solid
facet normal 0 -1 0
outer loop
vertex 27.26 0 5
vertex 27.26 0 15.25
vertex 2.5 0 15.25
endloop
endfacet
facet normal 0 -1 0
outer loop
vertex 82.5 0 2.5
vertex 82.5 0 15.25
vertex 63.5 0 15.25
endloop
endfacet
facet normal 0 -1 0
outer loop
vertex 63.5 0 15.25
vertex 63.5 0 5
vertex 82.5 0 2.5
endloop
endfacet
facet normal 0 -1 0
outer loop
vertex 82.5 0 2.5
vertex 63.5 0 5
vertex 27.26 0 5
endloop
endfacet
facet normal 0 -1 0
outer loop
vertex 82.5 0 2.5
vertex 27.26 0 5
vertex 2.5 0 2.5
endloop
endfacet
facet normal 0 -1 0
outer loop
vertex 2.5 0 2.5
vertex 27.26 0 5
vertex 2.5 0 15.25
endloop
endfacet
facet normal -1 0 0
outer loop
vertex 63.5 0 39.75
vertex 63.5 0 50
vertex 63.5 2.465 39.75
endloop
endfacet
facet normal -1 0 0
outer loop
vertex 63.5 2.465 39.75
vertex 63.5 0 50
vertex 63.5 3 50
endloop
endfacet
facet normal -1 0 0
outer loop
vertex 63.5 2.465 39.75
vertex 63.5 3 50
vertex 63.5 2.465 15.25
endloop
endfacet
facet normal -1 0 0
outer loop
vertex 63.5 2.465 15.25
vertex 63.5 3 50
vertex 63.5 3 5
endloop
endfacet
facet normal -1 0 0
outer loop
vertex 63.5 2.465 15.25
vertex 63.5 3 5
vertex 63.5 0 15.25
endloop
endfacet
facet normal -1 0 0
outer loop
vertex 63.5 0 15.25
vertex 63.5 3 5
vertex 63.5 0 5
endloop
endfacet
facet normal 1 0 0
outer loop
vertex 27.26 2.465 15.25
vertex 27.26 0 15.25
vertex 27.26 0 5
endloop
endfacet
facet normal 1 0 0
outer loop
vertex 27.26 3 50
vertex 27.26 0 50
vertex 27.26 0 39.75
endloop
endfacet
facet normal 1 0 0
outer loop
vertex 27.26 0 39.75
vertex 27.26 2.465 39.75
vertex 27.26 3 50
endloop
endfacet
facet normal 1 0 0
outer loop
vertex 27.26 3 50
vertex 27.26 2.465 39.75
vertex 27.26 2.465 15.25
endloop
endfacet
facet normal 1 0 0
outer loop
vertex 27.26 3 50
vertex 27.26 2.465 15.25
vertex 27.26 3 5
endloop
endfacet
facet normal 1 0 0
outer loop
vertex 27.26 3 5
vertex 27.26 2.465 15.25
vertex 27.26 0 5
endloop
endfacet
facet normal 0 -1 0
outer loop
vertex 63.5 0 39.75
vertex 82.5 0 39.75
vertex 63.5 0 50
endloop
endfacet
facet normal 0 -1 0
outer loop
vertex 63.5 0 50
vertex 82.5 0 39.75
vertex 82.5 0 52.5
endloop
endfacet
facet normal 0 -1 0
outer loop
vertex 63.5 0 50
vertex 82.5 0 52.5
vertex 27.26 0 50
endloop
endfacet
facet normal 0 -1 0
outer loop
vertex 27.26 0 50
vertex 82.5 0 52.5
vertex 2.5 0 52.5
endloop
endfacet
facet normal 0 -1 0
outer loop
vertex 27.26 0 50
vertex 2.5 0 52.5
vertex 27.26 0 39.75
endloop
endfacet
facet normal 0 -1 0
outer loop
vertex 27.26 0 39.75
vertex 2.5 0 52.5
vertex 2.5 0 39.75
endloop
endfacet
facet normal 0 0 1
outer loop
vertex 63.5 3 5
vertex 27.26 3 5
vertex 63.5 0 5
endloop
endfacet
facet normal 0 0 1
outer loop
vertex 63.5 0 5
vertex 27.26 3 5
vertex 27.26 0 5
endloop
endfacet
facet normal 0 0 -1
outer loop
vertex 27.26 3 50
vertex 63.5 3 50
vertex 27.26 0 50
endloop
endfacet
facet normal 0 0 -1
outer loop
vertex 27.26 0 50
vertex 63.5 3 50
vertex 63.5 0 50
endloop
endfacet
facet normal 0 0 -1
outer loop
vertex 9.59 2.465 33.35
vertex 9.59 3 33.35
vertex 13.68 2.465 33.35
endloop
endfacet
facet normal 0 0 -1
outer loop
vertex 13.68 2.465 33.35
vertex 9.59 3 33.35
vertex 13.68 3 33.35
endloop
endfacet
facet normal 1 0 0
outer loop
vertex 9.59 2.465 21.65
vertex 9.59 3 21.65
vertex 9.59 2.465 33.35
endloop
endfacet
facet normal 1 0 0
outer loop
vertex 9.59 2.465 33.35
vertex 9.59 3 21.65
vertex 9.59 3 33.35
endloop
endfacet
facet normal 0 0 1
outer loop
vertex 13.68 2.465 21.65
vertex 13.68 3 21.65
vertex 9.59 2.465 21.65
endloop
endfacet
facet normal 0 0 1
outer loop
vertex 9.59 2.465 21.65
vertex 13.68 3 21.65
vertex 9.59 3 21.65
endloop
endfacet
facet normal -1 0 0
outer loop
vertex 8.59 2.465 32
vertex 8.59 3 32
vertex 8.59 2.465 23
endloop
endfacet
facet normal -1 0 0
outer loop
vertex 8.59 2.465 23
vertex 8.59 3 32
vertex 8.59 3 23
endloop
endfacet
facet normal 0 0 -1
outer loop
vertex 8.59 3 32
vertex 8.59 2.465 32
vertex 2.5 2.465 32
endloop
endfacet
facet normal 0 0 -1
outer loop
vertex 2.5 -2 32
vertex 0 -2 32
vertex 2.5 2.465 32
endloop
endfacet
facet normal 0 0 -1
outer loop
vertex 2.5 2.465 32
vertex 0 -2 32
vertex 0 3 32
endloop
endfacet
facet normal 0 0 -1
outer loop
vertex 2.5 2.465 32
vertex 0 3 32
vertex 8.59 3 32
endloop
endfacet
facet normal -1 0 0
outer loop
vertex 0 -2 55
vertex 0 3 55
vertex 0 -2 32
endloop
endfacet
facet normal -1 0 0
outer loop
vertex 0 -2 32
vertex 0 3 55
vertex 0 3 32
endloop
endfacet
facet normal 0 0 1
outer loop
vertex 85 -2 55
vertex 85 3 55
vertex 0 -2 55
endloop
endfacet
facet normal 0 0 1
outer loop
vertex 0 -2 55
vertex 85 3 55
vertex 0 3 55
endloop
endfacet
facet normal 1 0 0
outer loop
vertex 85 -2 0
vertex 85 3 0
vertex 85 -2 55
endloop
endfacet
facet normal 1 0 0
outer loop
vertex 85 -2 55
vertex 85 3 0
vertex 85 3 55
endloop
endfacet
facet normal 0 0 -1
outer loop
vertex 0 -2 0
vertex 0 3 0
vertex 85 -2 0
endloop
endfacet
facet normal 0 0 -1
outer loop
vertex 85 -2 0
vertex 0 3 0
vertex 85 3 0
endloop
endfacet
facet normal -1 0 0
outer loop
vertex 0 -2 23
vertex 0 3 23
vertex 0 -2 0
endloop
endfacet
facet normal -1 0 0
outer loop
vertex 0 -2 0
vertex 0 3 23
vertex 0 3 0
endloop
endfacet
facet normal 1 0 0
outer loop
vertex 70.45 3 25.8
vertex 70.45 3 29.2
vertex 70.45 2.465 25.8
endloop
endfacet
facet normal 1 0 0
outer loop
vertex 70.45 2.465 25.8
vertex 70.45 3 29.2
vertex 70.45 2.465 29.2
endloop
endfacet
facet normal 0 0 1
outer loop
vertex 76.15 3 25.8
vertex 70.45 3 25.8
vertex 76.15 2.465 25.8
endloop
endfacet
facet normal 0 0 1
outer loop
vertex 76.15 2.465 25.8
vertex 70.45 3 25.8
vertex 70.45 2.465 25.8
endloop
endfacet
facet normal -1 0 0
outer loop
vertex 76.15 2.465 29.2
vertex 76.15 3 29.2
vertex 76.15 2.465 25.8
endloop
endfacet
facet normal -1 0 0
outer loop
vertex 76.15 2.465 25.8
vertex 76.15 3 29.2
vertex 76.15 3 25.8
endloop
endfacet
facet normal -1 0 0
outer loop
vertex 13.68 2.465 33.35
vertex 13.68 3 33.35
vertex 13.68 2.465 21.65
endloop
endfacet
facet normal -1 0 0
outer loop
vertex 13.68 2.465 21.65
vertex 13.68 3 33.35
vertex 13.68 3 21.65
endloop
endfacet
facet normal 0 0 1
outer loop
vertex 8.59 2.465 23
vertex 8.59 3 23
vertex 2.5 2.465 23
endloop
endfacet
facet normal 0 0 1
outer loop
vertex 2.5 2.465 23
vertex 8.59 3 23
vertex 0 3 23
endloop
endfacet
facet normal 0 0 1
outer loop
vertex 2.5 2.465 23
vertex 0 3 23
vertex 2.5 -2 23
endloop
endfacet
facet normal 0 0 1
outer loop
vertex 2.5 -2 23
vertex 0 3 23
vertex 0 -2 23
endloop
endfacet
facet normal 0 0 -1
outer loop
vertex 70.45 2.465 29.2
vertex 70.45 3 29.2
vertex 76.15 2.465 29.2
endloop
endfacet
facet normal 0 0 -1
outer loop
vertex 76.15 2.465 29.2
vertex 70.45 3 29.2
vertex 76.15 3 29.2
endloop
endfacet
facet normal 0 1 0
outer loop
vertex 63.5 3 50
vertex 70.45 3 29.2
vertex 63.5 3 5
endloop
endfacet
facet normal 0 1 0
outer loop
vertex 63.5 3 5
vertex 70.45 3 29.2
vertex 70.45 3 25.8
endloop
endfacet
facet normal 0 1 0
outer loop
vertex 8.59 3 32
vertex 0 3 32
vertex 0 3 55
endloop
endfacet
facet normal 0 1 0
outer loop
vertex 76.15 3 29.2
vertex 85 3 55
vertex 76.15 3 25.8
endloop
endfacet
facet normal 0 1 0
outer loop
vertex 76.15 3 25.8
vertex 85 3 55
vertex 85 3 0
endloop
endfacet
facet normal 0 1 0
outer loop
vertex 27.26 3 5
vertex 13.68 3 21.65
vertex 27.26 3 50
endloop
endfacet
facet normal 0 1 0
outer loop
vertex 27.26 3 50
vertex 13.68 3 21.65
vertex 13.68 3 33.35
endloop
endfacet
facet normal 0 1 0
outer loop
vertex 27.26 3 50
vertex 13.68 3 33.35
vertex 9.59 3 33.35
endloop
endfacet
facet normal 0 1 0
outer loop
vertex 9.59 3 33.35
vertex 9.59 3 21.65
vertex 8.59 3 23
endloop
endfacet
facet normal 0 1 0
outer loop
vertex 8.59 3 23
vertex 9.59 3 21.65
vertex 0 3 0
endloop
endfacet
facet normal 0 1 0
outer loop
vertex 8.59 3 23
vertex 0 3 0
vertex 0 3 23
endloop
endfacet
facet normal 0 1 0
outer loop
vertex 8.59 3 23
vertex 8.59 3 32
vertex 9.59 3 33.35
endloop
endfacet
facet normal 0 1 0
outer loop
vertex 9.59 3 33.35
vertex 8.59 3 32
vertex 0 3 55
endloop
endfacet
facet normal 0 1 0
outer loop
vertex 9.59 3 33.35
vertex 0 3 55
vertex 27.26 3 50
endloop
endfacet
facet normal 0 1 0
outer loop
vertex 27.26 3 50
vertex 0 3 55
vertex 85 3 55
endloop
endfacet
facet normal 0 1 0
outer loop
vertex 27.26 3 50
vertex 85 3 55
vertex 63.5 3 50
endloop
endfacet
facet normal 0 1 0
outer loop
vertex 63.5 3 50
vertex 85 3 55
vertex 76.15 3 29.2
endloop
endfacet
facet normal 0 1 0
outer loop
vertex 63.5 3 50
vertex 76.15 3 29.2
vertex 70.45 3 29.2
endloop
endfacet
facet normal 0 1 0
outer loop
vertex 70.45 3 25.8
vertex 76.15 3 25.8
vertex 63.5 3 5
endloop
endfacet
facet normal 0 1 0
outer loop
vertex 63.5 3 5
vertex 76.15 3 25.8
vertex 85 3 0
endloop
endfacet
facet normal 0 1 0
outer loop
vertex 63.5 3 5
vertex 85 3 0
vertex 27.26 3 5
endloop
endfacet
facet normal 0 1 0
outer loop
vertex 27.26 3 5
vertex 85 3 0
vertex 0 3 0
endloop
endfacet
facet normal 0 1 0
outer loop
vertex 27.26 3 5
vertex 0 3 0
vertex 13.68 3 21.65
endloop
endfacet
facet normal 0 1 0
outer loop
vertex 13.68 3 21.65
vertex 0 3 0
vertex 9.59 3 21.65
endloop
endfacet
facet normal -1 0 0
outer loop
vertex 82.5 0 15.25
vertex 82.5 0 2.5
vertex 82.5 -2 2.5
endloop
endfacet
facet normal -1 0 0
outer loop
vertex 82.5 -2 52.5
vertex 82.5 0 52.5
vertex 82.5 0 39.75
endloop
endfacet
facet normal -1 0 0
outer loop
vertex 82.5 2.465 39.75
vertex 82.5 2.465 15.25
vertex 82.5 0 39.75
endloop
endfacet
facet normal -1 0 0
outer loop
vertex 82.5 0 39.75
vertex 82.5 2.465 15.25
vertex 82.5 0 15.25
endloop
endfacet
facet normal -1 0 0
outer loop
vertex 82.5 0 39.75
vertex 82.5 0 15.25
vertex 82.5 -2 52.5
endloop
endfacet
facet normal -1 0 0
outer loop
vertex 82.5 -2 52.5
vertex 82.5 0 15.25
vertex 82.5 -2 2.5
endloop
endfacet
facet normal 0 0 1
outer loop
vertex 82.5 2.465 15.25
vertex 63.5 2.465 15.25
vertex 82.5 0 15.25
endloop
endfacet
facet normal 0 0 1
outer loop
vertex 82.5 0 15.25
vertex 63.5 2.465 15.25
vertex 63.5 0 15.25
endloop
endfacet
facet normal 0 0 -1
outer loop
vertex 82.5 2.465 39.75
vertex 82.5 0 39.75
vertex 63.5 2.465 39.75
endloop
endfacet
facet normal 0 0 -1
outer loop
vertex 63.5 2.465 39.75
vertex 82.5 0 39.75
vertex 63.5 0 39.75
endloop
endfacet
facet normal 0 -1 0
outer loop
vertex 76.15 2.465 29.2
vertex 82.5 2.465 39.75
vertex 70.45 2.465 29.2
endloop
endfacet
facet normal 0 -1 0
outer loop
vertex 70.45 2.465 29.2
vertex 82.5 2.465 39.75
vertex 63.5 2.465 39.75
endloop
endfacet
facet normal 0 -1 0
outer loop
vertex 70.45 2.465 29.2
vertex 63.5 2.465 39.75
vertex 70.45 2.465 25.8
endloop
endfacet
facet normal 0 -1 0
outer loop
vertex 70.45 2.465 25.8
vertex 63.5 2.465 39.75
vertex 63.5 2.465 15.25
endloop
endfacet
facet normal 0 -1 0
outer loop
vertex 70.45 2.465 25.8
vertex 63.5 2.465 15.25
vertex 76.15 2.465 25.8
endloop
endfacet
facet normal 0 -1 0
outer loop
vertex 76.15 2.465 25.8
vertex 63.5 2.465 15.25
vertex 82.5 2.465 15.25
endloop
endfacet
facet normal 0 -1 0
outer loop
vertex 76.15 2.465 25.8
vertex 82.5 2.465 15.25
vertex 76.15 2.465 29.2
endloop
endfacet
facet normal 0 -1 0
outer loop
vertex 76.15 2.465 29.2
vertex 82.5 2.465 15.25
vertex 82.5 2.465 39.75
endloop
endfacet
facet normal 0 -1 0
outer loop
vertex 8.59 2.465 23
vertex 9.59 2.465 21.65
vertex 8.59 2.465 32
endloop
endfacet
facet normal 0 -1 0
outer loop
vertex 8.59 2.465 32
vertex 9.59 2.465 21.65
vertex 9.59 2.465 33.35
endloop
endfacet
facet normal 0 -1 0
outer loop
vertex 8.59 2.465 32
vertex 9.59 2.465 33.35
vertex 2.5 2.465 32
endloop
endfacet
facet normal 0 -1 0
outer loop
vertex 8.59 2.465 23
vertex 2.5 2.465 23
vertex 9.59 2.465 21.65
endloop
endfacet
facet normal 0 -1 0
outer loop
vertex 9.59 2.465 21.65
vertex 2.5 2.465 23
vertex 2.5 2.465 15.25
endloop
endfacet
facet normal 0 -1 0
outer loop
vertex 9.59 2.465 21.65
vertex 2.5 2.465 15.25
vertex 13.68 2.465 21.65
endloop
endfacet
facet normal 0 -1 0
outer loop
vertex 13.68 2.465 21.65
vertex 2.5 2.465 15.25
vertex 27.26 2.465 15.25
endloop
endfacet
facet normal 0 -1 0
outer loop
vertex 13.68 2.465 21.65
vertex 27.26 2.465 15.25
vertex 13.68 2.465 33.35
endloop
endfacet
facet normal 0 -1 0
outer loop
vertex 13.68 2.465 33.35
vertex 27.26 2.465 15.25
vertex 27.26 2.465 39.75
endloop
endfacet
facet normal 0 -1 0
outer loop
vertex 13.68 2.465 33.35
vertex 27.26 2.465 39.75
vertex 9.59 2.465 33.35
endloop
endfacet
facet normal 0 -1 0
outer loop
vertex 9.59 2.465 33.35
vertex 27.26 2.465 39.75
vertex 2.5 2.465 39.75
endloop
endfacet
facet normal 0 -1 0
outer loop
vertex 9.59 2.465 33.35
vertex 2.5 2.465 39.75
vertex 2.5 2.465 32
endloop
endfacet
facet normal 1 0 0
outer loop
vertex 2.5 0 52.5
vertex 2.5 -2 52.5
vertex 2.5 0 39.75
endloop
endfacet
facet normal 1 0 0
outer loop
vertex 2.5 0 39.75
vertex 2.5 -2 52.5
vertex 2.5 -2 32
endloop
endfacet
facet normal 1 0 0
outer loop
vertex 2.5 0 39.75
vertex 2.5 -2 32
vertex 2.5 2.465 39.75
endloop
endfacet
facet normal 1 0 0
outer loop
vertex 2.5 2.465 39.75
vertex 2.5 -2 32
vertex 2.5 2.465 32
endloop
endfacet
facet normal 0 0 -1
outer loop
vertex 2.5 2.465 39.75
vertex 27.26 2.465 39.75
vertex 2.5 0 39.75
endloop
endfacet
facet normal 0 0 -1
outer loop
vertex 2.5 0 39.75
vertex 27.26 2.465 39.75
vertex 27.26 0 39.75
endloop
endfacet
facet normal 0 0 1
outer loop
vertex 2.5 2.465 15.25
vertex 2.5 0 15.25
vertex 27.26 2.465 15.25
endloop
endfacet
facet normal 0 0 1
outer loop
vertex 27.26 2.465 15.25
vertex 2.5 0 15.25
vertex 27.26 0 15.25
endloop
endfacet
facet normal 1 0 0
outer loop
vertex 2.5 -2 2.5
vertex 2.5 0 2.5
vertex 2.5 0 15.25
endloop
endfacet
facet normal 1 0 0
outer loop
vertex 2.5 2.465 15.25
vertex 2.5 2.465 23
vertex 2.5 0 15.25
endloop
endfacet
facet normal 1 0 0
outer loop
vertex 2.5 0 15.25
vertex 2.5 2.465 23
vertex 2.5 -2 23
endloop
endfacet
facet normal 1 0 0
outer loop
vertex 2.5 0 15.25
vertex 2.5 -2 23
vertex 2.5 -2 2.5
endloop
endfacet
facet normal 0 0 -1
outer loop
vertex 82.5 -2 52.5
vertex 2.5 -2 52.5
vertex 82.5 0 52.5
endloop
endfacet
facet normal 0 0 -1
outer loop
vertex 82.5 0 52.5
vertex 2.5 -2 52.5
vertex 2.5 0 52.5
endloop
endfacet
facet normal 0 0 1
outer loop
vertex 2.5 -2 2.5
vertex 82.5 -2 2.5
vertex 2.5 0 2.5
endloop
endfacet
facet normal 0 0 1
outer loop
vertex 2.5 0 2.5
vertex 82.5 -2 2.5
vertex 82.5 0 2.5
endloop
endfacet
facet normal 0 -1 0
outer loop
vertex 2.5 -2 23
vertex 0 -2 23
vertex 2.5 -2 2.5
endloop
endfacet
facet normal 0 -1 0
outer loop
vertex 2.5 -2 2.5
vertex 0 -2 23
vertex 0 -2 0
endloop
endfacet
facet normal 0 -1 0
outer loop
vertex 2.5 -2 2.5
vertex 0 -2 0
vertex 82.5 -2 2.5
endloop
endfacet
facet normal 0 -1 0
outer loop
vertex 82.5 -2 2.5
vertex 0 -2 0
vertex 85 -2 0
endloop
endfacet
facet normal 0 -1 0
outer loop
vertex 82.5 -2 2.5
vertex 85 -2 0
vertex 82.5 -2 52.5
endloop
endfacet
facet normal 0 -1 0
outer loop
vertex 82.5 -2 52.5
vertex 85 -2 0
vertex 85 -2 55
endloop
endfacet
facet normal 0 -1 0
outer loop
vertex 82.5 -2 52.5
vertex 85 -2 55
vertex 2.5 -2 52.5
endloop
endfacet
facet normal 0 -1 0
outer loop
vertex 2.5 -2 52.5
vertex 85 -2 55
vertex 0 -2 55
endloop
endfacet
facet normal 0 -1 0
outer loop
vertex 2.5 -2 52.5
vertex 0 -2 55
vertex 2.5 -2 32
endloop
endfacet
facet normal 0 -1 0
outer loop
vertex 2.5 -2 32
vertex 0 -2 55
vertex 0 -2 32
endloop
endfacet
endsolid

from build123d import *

# Parameters (mm, degrees)
SKETCH1_W               = 5.7
SKETCH1_H               = 3.4
SKETCH1_W_2             = 36.24
SKETCH1_H_2             = 45
BOSS_EXTRUDE1_DEPTH     = 3
CUT_EXTRUDE1_DEPTH      = 61
CUT_EXTRUDE1_DEPTH_BACK = 19
SKETCH3_W               = 24.5
SKETCH3_H               = 2.46523088
BOSS_EXTRUDE2_DEPTH     = 2


with BuildPart() as part:
    # Sketch1 → Boss-Extrude1 (new body)
    with BuildSketch(Plane(origin=(0, 0, 0), x_dir=(1, 0, 0), z_dir=(0, 1, 0))):
        Polygon((85, 0), (0, 0), (0, -23), (8.59, -23), (8.59, -32), (0, -32), (0, -55), (85, -55), align=None)
        Polygon((9.59, -33.35), (9.59, -32.35), (9.59, -22.65), (9.59, -21.65), (13.68, -21.65), (13.68, -33.35), align=None, mode=Mode.SUBTRACT)
        with Locations((73.3, -27.5)):
            Rectangle(SKETCH1_W, SKETCH1_H, mode=Mode.SUBTRACT)
        with Locations((45.38, -27.5)):
            Rectangle(SKETCH1_W_2, SKETCH1_H_2, mode=Mode.SUBTRACT)
    extrude(amount=BOSS_EXTRUDE1_DEPTH)

    # Sketch3 → Cut-Extrude1 (cut, two sides: drawn at the far end of the back side and taken through both)
    with BuildSketch(Plane.ZY.offset(-63.5).offset(-CUT_EXTRUDE1_DEPTH_BACK)):
        with Locations((27.5, 1.23261544)):
            Rectangle(SKETCH3_W, SKETCH3_H)
    extrude(amount=CUT_EXTRUDE1_DEPTH + CUT_EXTRUDE1_DEPTH_BACK, mode=Mode.SUBTRACT)

    # Sketch4 → Boss-Extrude2 (add)
    with BuildSketch(Plane.XZ):
        Polygon((0, 32), (2.5, 32), (2.5, 39.75), (2.5, 52.5), (82.5, 52.5), (82.5, 39.75), (82.5, 15.25), (82.5, 2.5), (2.5, 2.5), (2.5, 15.25), (2.5, 23), (0, 23), (0, 0), (85, 0), (85, 55), (0, 55), align=None)
    extrude(amount=BOSS_EXTRUDE2_DEPTH)


solid = part.part
